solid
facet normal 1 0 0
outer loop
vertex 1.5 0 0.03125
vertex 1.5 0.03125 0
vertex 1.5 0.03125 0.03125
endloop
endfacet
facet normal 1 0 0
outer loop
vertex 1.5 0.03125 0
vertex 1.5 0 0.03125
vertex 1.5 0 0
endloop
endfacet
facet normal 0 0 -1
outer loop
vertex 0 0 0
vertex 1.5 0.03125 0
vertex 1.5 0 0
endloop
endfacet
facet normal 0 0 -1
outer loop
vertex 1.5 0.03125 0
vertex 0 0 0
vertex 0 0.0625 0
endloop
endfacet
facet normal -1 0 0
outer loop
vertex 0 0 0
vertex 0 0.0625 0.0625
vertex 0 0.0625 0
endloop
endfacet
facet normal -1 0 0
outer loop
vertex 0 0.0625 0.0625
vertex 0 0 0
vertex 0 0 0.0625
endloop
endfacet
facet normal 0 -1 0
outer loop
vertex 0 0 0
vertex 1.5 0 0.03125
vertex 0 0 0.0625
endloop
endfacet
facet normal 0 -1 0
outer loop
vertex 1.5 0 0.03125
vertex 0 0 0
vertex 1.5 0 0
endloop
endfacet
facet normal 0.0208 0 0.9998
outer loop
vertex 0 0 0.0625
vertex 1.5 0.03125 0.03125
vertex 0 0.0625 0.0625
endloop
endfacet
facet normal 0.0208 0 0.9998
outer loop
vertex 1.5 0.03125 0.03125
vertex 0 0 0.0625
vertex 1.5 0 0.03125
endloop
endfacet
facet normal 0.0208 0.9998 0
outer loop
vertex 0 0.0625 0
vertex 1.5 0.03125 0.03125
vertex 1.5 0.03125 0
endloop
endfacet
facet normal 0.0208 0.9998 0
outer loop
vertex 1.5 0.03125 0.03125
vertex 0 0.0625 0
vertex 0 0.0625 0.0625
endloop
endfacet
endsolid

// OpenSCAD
// file: ../../../constraints.scad
//####################################
// Math-Magik LPP - Design Constraints
// (c) 2021 by Roie R. Black
//====================================

// AMA Rules for event 208
//------------------------------------

max_overall_length = 20;
max_projected_wing_span = 18;
max_bearing_to_rear_hook = 10;
max_wing_chord = 5;
max_stab_span = 12;
max_stab_chord = 4;
max_prop_diameter = 12;
// file: MMlib/double_taper_spar.scad
//######################################################################
// double_taper_spar.scad - creates a spar tapered on two sides
// (c) 2021 - Roie R. Black
// docs: https://rblack.github.io/math-magik/magik/double_taper_spar.html

module double_taper_spar(l=5, y1=1, y2=0.5, z1=1, z2=0.5, debug=false) {
  // calc taper angles
  yang = atan2(z1-z2,l);
  zang = atan2(y1-y2,l);


  difference() {
    // z taper
    difference() {
      cube([l,y1,z1]);
      translate([0,-y1/2, z1])
        rotate([0,yang,0])
          if (debug) {
            #cube([l+1, 2*y1, z1]);
          } else {
            cube([l+1, 2*y1, z1]);
          }
    // y taper
    translate([0,y1, -z1/2])
      rotate([0,0,-zang])
        if (debug) {
          #cube([l+1, y1, 2*z1]);
        } else {
          cube([l+1, y1, 2*z1]);
        }
    }
  }
}

double_taper_spar();
// file: ../../stab_data.scad
//#####################################
// stab.data
// (c) 2021 by Roie R. Black
//=====================================
include <../constraints.scad>

// center section dimensions
center_span = 6;
spar_size = 1/16;
rib_chord = max_stab_chord - 2 * spar_size;
rib_camber = 2;
num_center_ribs = 3;

// tip section dimensions
tip_span = (max_stab_span - center_span)/2;
tip_radius = 1.5;
tip_le_span = tip_span - tip_radius;
tip_rib_chord = max_stab_chord - tip_radius - spar_size;
// main file
//#####################################
// leading_edge.scad = wing center section
// (c) 2021 by Roie R. Black
//=====================================
include <../../stab_data.scad>
use <MMlib/double_taper_spar.scad>

s1 = spar_size;
s2 = spar_size/2;


module leading_edge() {
		double_taper_spar(tip_le_span,s1,s2,s1,s2);
}

//====================================
// display this shape
leading_edge();
